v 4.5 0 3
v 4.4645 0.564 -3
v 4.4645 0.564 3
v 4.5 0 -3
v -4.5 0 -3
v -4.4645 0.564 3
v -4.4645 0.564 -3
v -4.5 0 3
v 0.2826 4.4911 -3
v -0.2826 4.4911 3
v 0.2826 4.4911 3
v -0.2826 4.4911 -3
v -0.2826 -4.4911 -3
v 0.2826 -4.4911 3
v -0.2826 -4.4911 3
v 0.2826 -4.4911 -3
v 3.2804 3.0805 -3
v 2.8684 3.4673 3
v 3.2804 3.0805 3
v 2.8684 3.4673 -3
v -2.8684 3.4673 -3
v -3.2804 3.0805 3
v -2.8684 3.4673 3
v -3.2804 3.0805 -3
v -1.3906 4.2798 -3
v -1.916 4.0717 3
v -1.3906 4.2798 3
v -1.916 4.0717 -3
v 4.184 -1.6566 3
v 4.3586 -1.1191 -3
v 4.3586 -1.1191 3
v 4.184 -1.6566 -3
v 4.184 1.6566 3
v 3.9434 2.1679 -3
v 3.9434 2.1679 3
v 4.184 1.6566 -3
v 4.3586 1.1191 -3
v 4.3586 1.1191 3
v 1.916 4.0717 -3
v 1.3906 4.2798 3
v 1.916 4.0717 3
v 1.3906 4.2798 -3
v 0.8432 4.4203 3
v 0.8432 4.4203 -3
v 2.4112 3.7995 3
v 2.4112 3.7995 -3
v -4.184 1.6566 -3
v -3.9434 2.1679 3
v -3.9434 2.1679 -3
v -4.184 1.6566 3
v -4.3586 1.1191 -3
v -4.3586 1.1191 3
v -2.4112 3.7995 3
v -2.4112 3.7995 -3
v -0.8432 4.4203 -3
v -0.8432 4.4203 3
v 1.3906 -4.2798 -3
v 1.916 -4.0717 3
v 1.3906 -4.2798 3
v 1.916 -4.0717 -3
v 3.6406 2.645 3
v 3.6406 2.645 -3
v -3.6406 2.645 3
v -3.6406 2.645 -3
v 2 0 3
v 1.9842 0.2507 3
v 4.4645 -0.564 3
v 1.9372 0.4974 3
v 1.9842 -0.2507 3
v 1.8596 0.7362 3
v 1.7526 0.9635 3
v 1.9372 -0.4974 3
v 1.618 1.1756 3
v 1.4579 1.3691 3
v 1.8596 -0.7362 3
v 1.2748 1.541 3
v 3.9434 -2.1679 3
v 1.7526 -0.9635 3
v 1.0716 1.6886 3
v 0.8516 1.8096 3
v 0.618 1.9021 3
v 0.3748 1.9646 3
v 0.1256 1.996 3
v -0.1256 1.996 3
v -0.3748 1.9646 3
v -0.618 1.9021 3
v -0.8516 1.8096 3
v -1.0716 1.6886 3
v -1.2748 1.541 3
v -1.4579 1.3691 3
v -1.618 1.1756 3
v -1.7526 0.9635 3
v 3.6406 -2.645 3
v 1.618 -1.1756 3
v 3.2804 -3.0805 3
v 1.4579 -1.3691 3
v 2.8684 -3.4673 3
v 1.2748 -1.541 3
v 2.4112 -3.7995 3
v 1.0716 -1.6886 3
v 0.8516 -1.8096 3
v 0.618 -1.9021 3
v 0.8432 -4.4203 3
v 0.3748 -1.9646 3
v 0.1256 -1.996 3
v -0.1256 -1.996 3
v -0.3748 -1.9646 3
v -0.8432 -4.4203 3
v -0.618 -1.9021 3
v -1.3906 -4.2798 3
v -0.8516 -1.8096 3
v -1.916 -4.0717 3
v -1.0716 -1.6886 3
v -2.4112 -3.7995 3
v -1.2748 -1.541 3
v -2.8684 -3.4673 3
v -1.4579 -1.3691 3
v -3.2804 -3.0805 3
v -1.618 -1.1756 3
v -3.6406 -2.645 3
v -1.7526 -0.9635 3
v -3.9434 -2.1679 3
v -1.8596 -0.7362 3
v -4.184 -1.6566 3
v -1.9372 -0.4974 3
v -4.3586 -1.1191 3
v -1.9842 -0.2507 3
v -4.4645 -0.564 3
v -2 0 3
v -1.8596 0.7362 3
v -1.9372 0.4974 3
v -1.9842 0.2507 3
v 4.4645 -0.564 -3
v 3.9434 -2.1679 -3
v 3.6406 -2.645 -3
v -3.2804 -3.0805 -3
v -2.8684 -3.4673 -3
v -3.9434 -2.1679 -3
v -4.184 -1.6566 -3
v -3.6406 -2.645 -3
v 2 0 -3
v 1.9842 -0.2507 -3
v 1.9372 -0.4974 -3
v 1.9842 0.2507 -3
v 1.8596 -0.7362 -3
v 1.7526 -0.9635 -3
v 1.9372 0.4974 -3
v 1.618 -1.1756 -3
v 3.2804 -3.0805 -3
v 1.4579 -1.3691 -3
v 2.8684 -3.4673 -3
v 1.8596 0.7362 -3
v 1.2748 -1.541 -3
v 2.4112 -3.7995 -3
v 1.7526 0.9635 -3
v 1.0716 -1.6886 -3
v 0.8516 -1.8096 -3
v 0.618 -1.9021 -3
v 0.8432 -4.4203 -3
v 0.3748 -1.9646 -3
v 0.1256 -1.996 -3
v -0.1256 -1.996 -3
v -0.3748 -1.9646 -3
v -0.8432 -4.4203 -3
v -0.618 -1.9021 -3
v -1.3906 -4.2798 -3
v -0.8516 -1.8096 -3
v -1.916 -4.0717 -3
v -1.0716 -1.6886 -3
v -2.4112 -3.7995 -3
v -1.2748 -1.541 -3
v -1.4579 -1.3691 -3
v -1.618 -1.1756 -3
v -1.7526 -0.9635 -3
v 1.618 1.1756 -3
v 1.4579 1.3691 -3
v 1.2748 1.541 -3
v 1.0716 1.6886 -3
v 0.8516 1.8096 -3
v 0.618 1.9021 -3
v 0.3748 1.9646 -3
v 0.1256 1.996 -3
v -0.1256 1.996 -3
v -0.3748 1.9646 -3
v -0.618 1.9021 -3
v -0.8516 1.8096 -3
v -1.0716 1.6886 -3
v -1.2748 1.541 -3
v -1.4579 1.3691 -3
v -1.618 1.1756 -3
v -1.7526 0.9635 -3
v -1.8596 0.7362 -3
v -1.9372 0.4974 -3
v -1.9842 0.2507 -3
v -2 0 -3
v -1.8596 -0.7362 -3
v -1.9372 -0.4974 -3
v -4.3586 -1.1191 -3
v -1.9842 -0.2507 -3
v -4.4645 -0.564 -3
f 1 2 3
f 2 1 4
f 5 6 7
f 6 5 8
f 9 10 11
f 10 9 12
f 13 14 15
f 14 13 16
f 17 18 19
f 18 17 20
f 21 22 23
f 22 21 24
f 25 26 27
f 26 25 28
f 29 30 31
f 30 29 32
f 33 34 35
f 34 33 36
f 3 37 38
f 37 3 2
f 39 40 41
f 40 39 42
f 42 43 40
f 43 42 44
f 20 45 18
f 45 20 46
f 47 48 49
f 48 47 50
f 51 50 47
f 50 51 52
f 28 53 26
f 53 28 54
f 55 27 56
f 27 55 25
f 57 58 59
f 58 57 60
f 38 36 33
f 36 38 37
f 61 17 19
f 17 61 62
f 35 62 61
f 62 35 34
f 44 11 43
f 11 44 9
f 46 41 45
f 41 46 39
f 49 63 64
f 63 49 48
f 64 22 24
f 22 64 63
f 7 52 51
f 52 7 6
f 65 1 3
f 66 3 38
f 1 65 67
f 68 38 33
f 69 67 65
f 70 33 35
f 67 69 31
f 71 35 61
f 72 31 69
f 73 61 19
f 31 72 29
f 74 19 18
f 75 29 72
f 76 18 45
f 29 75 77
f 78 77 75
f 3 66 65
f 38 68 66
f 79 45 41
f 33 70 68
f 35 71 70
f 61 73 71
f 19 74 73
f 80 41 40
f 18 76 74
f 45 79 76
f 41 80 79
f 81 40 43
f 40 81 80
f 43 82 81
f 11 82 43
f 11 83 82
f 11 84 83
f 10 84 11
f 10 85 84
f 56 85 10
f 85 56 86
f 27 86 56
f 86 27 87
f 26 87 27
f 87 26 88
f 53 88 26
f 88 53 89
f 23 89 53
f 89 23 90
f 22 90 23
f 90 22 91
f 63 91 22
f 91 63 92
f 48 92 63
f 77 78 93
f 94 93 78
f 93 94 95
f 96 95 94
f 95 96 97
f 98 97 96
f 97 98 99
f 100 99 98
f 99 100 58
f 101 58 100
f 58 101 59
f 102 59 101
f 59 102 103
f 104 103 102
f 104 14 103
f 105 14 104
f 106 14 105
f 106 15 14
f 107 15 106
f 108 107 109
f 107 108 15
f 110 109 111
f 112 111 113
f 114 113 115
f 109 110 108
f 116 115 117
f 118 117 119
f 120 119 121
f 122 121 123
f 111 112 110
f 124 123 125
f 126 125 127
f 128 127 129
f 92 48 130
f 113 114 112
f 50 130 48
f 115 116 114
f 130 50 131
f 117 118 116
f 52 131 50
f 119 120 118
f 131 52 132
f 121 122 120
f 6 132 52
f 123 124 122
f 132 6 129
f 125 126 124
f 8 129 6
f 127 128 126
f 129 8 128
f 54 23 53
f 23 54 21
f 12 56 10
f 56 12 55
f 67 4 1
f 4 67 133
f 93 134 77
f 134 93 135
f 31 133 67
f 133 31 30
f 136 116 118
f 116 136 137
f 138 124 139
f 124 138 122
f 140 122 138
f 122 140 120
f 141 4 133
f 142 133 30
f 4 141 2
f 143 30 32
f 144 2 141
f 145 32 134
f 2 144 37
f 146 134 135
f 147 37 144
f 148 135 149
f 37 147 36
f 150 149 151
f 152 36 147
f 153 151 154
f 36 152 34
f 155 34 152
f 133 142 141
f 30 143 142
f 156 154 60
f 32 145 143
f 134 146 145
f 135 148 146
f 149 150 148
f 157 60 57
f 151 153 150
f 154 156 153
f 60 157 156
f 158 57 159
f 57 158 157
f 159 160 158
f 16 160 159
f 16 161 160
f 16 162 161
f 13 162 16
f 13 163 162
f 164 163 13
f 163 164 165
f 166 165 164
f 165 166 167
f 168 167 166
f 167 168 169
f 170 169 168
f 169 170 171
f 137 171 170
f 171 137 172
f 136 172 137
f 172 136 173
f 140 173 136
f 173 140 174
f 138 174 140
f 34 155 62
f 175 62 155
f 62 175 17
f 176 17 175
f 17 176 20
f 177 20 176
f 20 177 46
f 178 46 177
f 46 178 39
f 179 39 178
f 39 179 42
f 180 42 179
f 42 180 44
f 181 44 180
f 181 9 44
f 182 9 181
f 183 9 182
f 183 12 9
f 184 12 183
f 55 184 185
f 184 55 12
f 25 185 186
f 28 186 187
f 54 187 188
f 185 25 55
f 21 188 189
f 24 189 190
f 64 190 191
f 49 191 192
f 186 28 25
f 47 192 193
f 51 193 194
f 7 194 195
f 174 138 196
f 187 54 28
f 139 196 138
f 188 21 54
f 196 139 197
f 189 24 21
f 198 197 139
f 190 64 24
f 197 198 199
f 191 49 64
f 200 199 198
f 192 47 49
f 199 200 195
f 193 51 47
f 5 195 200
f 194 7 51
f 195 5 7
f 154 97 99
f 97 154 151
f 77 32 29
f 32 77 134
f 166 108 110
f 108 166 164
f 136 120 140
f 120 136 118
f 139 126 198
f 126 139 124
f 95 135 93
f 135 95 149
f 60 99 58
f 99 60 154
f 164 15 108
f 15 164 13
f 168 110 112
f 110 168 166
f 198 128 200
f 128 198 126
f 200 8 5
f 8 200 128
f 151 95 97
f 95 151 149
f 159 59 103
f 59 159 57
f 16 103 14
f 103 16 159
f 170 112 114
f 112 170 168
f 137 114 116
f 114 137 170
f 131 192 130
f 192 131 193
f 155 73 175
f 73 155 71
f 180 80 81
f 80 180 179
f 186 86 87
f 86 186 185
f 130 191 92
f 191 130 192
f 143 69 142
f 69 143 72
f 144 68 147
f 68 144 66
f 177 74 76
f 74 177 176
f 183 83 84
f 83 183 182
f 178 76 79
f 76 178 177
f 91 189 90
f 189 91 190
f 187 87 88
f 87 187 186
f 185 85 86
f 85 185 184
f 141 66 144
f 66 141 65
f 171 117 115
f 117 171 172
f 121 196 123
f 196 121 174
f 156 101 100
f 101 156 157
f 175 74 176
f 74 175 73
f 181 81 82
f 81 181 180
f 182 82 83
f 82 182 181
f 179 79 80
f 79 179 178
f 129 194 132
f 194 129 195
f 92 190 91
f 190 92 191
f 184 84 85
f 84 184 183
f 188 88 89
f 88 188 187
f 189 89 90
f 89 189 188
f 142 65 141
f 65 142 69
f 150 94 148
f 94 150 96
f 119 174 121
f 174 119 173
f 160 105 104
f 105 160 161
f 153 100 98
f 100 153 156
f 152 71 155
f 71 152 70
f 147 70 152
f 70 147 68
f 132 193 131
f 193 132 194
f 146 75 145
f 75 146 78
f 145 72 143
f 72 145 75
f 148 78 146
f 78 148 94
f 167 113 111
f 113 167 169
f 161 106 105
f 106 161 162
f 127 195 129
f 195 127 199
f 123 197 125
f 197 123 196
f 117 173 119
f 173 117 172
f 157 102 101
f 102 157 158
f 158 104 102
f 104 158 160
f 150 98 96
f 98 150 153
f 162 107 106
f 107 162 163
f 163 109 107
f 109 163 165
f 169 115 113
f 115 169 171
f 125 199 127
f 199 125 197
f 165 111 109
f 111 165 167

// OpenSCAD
$fn = 50;


difference() {
	union() {
		translate(v = [0, 0, -3.0000000000]) {
			cylinder(h = 6, r = 4.5000000000);
		}
	}
	union() {
		translate(v = [0, 0, -100.0000000000]) {
			cylinder(h = 200, r = 2);
		}
	}
}
